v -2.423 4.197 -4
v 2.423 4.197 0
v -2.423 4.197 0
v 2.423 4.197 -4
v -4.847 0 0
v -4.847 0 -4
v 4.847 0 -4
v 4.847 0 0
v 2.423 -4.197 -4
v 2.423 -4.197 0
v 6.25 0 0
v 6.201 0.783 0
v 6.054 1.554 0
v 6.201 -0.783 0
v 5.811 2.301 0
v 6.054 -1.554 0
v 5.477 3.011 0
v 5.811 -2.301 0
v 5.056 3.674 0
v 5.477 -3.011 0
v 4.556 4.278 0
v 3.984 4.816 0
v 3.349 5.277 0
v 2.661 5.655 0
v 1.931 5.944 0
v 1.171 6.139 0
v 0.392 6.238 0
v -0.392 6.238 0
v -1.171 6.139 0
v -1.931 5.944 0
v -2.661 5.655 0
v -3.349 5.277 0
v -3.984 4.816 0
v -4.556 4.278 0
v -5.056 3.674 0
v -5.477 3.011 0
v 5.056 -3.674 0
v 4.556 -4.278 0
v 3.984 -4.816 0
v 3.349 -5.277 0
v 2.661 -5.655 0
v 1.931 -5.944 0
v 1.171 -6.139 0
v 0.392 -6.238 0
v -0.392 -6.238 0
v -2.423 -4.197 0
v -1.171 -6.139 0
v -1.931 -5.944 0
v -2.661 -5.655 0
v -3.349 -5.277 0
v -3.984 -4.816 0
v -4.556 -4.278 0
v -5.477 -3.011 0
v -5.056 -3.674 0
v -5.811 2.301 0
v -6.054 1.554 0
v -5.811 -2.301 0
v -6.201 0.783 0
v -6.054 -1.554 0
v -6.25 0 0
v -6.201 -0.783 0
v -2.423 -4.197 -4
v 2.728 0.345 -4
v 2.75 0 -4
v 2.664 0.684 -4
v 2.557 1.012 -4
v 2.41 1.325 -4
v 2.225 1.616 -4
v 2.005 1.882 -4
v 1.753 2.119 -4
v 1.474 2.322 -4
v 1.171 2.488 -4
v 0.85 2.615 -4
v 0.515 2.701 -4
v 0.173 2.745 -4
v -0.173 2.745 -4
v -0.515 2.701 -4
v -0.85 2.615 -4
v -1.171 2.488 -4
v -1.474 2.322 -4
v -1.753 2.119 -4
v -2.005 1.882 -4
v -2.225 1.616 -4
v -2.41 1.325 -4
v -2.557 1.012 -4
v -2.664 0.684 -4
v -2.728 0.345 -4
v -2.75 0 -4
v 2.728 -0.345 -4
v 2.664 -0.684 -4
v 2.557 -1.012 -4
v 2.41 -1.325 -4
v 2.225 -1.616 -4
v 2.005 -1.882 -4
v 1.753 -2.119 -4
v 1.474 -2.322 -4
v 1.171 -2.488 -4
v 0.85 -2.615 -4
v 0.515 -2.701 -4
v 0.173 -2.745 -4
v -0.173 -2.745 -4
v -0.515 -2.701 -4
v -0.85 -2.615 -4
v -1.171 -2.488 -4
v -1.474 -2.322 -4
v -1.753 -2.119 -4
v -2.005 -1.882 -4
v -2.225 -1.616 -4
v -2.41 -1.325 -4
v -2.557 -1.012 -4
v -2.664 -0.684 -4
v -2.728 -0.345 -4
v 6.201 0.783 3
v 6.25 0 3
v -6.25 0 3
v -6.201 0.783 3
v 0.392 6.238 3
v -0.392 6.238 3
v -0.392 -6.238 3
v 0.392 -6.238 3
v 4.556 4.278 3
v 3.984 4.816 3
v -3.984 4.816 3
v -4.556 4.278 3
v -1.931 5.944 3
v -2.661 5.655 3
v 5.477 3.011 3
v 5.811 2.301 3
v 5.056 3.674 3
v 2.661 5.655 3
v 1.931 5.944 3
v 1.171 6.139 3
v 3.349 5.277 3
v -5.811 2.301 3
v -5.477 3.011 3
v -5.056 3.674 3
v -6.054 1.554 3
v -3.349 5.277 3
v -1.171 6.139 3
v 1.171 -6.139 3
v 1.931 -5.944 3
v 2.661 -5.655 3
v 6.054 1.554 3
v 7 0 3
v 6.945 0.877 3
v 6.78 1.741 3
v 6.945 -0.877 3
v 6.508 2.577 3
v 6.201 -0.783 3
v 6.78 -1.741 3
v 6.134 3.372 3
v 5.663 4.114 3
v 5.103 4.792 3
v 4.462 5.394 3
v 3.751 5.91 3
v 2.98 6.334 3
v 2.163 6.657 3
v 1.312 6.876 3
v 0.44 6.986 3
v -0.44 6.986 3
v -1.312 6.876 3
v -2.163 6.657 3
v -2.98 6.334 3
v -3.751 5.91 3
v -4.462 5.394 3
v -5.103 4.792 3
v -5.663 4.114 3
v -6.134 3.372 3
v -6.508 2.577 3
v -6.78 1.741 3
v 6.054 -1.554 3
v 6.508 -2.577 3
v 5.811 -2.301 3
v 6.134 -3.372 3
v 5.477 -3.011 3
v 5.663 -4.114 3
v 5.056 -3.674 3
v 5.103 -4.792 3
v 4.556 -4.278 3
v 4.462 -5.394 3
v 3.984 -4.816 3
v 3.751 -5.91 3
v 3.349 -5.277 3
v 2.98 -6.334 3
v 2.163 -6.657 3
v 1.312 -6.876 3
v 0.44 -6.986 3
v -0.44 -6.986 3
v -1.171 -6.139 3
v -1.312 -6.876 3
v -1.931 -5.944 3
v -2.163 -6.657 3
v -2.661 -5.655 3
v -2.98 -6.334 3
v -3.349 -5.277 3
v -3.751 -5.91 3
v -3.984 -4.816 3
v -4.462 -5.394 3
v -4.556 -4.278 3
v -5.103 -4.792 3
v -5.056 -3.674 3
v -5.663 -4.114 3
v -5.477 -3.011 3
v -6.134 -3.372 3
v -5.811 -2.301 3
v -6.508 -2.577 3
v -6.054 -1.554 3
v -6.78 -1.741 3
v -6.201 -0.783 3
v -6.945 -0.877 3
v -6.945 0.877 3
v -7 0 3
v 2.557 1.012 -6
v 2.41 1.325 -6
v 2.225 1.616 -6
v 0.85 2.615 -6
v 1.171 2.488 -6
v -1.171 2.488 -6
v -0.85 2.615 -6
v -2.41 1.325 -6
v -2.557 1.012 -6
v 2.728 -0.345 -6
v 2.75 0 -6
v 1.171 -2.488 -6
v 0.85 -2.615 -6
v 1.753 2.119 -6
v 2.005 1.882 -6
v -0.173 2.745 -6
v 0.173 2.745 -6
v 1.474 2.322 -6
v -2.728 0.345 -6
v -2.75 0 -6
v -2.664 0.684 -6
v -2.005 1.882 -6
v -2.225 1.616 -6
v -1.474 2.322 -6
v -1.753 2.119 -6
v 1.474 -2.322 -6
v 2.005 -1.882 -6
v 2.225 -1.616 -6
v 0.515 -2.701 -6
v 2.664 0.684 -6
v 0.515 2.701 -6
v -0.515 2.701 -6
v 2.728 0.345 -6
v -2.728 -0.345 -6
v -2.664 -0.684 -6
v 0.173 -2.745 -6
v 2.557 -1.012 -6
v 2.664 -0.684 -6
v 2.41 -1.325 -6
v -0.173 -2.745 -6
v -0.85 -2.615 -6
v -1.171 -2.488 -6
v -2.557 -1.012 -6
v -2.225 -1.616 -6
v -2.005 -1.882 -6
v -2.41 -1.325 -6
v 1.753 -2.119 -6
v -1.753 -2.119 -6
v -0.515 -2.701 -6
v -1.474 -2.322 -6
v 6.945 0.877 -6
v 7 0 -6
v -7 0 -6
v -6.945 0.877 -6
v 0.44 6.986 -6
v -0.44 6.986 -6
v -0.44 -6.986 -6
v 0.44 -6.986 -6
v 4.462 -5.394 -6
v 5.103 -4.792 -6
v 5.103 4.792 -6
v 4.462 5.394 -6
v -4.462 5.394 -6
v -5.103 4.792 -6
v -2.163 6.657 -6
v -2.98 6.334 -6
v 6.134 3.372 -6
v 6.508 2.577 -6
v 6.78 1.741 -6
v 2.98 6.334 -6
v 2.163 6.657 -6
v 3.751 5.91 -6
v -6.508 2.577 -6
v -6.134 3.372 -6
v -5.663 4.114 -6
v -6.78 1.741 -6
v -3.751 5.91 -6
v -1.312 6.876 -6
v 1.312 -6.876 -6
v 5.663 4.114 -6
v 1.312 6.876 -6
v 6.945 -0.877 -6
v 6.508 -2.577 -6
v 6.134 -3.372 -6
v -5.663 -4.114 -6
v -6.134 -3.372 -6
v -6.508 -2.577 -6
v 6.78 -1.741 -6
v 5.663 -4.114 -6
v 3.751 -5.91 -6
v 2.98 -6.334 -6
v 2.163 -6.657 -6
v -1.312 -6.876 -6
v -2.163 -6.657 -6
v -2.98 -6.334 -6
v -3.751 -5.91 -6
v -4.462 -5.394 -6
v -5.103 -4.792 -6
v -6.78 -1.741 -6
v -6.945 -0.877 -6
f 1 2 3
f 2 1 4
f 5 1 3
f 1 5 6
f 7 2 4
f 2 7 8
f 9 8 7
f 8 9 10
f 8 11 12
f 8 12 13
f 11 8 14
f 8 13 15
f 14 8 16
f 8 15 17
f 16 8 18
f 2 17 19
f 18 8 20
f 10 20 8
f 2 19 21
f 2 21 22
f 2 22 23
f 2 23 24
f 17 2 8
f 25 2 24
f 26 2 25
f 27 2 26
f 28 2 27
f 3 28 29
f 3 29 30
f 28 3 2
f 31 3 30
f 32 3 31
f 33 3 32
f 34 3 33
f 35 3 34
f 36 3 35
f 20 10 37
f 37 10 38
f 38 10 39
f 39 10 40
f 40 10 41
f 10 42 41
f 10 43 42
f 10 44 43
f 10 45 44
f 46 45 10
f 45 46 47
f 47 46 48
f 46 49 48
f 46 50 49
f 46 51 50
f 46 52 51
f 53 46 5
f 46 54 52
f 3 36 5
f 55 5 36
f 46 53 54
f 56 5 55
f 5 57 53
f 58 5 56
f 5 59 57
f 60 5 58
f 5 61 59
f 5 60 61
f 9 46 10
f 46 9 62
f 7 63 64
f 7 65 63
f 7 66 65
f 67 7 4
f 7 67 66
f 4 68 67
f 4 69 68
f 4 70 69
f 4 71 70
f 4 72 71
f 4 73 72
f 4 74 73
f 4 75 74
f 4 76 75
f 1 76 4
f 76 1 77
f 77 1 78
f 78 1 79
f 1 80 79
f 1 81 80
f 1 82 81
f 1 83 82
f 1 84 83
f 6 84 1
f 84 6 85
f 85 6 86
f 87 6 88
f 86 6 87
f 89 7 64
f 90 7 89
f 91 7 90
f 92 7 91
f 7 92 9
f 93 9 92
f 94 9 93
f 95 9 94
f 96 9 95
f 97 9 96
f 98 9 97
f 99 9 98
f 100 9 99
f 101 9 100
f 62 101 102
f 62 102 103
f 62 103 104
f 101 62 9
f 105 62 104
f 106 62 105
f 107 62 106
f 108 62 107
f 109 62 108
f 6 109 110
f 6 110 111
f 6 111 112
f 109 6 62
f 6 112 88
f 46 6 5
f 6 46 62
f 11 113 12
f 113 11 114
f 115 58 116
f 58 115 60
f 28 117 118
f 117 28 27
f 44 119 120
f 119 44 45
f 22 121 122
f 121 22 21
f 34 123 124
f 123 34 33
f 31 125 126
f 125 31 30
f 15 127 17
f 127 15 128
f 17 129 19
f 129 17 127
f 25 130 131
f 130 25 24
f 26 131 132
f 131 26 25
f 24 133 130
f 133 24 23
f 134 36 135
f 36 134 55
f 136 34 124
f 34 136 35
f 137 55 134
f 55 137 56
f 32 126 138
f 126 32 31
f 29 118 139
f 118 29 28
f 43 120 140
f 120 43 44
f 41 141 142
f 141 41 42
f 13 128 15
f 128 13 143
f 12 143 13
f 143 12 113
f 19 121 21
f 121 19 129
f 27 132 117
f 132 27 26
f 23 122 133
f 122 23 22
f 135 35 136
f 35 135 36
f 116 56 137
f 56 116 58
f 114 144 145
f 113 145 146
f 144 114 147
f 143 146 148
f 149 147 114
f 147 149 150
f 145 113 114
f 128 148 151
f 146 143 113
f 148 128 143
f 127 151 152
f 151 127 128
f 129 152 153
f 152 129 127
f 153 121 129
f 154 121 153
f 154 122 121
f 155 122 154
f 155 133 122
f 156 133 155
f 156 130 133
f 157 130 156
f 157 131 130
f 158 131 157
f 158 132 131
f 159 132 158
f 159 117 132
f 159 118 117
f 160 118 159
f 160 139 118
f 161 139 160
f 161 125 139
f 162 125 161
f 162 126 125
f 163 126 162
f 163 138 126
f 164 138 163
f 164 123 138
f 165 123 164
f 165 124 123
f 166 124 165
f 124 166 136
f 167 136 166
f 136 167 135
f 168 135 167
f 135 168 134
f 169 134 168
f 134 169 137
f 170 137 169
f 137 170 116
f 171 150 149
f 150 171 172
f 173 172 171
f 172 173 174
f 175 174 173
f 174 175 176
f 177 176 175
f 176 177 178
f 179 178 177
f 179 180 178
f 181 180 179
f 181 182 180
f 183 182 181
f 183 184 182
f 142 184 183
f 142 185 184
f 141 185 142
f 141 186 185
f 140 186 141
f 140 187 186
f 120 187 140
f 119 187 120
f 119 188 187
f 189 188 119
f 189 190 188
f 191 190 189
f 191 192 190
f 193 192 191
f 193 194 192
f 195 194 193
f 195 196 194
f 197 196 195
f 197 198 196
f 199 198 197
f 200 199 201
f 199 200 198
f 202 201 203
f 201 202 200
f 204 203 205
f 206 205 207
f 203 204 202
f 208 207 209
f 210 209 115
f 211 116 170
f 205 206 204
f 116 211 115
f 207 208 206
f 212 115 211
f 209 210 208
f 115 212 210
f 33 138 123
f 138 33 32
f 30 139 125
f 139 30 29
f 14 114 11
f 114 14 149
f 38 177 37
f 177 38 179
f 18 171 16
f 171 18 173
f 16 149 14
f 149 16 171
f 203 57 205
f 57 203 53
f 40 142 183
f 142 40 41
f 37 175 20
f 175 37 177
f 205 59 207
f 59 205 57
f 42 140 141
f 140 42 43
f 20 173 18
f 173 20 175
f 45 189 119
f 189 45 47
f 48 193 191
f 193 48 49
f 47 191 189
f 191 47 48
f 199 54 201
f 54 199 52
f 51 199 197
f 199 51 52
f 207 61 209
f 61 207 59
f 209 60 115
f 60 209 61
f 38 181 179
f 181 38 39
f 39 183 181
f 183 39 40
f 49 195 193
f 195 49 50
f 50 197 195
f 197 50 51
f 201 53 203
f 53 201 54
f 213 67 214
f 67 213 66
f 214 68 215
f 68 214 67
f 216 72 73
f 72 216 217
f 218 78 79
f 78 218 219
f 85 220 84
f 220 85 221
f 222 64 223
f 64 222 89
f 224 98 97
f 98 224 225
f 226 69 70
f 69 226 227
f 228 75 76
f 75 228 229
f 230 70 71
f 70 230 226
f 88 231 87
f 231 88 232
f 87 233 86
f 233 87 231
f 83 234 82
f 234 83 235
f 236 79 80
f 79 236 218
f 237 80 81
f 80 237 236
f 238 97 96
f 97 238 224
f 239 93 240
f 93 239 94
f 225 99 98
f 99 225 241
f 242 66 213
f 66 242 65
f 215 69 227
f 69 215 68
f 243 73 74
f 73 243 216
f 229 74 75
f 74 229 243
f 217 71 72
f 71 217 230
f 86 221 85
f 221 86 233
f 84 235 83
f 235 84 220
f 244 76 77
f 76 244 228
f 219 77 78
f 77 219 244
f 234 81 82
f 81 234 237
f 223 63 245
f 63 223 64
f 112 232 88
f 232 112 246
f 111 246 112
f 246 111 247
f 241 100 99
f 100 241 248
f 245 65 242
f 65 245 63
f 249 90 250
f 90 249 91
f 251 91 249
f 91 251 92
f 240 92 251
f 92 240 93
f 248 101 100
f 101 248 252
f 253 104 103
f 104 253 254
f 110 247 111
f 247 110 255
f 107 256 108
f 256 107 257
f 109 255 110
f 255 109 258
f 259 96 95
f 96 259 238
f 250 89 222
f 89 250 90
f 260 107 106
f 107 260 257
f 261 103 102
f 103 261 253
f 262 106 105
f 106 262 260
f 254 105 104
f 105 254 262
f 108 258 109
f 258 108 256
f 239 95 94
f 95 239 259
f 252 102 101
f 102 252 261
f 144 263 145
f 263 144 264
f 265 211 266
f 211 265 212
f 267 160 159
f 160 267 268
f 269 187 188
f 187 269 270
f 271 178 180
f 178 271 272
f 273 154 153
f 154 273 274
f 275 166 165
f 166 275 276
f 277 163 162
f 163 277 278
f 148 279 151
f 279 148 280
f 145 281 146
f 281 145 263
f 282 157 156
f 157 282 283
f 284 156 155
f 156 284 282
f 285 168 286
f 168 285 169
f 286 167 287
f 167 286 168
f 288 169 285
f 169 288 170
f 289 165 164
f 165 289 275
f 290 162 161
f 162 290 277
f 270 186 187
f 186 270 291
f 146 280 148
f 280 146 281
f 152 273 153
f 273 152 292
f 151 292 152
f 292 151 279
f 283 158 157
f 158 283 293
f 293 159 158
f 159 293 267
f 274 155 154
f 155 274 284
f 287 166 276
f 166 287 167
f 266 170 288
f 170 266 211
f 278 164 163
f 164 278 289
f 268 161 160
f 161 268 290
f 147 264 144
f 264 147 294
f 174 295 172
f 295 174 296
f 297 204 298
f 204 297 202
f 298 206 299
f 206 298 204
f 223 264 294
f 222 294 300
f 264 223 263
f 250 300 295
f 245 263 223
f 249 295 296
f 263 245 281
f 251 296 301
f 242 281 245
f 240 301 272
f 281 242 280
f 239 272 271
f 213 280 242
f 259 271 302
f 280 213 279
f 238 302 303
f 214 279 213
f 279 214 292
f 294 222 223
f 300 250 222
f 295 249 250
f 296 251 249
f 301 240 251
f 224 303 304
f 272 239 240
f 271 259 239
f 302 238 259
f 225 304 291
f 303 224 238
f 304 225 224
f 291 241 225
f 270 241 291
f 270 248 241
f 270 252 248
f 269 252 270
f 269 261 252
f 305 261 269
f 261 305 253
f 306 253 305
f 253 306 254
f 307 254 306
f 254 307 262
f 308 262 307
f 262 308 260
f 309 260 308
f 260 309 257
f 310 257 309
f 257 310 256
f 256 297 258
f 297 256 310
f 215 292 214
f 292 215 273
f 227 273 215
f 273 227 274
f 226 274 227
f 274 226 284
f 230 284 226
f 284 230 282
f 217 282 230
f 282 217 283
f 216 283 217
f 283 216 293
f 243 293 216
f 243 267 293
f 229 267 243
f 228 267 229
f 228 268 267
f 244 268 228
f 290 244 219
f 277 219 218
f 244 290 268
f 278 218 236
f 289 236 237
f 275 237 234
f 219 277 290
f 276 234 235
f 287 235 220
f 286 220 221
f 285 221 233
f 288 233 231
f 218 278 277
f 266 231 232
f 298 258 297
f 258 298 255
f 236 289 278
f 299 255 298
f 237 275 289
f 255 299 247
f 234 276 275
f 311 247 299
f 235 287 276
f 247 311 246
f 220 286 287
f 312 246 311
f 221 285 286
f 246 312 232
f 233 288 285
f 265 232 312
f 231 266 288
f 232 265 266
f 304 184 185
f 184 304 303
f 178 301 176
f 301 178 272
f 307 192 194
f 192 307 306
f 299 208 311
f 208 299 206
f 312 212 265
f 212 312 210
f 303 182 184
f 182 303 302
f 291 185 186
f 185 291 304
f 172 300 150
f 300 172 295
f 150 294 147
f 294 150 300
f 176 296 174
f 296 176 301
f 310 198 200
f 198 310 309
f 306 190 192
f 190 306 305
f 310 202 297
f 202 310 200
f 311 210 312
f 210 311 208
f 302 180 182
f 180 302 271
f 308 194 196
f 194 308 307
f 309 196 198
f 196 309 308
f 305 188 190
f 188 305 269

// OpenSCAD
$fn = 50;


difference() {
	union() {
		translate(v = [0, 0, -6.0000000000]) {
			cylinder(h = 9.0000000000, r = 7.0000000000);
		}
	}
	union() {
		translate(v = [0, 0, 0]) {
			rotate(a = [0, 0, 0]) {
				difference() {
					union() {
						translate(v = [0, 0, -4]) {
							linear_extrude(height = 4) {
								polygon(points = [[4.8468000000, 0.0000000000], [2.4234000000, 4.1974519271], [-2.4234000000, 4.1974519271], [-4.8468000000, 0.0000000000], [-2.4234000000, -4.1974519271], [2.4234000000, -4.1974519271]]);
							}
						}
					}
					union();
				}
			}
		}
		#cylinder(h = 3, r = 6.2500000000);
		#translate(v = [0, 0, -100.0000000000]) {
			cylinder(h = 200, r = 2.7500000000);
		}
	}
}
